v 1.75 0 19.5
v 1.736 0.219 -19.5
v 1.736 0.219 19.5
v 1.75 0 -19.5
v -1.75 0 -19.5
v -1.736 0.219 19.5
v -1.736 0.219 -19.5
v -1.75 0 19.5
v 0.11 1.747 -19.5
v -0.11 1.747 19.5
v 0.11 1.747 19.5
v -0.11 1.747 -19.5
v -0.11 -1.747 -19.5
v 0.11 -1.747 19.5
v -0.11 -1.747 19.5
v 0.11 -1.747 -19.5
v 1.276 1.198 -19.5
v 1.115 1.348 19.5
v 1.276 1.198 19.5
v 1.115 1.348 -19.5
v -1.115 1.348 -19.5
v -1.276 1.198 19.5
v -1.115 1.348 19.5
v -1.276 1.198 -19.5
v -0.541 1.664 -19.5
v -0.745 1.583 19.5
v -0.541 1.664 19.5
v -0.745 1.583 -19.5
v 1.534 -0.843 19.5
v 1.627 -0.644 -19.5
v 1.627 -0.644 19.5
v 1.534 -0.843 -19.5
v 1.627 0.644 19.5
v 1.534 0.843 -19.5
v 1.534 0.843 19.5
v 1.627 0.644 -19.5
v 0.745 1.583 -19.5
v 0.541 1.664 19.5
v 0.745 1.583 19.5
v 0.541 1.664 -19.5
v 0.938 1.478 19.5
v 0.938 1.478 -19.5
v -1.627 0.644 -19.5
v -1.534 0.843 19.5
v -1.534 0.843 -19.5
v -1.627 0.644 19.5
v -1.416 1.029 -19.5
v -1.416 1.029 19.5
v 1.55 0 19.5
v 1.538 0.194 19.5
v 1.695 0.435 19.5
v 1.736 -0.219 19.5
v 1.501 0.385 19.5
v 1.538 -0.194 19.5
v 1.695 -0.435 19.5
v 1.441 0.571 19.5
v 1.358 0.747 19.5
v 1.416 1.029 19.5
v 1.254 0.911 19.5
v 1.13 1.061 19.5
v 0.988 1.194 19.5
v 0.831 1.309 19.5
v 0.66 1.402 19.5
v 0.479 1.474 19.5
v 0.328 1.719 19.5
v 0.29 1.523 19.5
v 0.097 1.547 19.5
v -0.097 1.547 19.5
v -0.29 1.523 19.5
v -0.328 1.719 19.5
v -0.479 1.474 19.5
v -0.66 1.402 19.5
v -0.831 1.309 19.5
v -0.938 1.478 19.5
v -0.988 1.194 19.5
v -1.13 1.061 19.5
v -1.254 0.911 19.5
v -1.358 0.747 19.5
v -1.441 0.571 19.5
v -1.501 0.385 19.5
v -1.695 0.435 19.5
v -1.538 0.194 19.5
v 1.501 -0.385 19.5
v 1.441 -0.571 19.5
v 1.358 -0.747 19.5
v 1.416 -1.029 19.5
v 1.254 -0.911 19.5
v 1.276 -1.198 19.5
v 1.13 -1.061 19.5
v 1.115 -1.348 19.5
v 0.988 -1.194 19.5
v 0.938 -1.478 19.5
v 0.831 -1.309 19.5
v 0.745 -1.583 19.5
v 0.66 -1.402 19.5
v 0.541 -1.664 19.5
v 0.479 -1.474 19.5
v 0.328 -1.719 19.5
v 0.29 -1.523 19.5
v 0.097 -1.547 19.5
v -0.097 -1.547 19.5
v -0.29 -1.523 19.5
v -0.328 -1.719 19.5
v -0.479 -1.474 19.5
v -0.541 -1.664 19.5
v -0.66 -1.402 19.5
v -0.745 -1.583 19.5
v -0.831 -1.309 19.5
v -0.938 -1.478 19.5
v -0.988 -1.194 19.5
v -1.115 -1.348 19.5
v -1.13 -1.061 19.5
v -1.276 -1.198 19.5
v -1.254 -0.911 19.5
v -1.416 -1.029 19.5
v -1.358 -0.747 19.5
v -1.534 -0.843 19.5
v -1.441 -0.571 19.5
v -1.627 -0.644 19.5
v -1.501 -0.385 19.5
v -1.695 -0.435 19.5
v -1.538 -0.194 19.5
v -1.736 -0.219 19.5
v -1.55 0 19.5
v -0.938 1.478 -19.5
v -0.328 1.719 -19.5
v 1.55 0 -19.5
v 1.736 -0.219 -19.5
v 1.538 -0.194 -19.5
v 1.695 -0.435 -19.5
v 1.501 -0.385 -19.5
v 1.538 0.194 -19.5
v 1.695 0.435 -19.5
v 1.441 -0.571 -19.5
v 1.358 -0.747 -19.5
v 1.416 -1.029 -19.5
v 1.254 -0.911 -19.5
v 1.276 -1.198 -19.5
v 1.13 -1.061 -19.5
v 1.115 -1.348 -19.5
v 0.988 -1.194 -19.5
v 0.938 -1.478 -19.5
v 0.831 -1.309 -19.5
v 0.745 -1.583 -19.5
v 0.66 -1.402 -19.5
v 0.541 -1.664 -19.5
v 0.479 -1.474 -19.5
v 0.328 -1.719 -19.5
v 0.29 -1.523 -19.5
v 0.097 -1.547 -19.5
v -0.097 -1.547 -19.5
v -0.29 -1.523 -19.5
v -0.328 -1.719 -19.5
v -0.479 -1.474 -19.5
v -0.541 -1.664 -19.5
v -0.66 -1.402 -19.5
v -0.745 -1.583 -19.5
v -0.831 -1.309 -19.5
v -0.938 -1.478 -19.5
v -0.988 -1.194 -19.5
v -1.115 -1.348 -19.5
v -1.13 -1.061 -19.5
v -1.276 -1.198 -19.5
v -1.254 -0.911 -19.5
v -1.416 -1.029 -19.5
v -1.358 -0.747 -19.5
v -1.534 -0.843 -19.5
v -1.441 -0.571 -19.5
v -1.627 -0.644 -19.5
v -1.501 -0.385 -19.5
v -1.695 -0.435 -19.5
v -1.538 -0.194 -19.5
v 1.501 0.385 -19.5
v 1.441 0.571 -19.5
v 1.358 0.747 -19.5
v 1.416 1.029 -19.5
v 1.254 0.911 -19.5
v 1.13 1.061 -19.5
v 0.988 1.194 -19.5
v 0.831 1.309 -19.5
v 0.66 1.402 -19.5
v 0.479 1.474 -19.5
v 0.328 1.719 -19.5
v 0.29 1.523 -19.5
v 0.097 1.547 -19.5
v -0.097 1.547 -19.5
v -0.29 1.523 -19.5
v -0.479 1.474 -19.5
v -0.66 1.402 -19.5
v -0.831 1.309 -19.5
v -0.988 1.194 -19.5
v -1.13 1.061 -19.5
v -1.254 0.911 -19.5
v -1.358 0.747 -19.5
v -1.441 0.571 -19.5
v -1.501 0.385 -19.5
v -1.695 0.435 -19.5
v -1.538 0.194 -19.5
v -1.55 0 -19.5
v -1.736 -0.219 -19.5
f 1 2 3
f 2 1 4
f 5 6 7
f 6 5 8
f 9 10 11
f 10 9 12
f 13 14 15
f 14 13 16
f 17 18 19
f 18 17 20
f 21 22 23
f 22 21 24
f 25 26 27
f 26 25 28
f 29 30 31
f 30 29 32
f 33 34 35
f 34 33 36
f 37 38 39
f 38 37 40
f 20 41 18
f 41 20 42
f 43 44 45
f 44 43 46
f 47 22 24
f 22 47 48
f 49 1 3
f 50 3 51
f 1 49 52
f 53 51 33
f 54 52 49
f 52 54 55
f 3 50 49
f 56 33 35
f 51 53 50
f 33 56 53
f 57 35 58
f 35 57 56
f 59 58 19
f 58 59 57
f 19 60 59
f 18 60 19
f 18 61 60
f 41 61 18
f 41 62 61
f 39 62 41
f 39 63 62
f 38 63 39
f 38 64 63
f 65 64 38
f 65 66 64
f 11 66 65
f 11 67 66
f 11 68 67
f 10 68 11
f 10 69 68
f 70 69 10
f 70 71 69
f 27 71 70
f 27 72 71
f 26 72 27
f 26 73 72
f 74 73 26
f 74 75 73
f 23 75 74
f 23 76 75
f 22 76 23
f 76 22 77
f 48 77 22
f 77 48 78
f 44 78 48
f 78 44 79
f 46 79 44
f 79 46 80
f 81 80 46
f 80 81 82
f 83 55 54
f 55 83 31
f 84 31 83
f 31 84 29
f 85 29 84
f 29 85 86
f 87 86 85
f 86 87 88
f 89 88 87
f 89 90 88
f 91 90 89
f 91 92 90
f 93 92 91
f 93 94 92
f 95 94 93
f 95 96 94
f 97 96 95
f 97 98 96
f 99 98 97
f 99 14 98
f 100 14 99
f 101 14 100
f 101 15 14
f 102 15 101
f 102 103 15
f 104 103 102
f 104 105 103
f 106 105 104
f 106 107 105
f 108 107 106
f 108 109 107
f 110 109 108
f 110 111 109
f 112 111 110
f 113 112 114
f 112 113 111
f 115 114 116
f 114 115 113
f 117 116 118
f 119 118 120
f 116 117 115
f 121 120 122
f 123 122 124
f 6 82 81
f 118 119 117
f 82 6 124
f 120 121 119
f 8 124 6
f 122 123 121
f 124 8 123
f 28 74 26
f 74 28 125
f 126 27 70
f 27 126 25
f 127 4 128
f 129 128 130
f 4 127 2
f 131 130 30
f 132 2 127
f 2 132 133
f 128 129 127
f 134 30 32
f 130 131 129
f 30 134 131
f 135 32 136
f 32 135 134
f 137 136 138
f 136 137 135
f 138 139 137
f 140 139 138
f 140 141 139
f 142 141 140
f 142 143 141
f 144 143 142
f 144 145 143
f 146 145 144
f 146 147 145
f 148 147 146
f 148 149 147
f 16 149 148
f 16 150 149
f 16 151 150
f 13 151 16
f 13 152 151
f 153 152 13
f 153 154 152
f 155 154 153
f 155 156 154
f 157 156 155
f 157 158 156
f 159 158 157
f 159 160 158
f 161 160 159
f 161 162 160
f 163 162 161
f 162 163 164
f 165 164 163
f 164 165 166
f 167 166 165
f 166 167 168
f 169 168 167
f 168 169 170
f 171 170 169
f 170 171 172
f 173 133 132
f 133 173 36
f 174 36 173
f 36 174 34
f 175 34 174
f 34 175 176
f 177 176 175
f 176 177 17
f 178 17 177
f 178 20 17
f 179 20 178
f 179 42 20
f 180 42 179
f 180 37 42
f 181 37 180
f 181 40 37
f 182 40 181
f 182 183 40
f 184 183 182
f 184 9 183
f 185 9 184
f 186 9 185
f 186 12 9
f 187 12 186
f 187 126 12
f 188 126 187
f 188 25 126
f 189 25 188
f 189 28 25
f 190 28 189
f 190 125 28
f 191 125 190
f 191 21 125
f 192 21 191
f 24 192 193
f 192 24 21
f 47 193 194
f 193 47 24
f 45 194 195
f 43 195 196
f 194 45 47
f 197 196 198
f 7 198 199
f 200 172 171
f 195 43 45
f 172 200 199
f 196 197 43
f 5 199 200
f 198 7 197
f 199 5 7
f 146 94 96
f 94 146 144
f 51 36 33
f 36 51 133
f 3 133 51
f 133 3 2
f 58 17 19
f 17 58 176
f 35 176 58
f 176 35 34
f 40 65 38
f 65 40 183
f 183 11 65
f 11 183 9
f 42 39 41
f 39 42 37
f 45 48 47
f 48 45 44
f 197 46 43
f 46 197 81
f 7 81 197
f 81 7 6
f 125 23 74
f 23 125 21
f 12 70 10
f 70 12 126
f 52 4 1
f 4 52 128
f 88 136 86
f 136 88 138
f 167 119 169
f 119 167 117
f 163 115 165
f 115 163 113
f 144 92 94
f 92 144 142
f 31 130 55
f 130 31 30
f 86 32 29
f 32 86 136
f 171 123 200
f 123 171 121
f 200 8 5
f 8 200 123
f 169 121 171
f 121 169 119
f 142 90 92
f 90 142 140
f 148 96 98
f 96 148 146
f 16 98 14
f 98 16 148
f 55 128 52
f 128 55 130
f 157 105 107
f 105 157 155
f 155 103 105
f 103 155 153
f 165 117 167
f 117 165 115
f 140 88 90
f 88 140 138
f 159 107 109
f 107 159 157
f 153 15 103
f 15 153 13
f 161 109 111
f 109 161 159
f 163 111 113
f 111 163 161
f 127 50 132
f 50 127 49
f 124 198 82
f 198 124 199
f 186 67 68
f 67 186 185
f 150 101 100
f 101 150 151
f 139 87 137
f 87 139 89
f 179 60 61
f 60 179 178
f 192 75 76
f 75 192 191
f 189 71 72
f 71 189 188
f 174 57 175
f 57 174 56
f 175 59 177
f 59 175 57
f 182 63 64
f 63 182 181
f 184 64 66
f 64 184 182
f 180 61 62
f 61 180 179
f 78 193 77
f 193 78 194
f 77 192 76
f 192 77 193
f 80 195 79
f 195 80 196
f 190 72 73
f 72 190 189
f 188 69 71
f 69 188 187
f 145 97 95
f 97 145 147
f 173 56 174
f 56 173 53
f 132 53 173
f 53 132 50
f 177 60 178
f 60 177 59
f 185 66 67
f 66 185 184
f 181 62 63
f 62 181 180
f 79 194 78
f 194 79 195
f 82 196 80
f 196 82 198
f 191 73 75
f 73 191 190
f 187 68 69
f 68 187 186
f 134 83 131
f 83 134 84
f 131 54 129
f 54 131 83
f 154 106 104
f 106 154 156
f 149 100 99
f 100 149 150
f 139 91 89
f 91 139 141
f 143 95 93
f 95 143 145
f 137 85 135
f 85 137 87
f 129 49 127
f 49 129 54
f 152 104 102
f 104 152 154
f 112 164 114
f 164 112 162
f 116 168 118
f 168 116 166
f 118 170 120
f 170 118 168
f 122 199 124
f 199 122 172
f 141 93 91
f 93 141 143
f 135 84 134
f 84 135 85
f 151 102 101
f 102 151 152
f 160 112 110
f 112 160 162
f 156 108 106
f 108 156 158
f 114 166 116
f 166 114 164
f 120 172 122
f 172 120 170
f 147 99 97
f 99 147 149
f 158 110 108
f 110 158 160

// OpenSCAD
$fn = 50;


difference() {
	union() {
		translate(v = [0, 0, -19.5000000000]) {
			cylinder(h = 39, r = 1.7500000000);
		}
	}
	union() {
		translate(v = [0, 0, -100.0000000000]) {
			cylinder(h = 200, r = 1.5500000000);
		}
	}
}
